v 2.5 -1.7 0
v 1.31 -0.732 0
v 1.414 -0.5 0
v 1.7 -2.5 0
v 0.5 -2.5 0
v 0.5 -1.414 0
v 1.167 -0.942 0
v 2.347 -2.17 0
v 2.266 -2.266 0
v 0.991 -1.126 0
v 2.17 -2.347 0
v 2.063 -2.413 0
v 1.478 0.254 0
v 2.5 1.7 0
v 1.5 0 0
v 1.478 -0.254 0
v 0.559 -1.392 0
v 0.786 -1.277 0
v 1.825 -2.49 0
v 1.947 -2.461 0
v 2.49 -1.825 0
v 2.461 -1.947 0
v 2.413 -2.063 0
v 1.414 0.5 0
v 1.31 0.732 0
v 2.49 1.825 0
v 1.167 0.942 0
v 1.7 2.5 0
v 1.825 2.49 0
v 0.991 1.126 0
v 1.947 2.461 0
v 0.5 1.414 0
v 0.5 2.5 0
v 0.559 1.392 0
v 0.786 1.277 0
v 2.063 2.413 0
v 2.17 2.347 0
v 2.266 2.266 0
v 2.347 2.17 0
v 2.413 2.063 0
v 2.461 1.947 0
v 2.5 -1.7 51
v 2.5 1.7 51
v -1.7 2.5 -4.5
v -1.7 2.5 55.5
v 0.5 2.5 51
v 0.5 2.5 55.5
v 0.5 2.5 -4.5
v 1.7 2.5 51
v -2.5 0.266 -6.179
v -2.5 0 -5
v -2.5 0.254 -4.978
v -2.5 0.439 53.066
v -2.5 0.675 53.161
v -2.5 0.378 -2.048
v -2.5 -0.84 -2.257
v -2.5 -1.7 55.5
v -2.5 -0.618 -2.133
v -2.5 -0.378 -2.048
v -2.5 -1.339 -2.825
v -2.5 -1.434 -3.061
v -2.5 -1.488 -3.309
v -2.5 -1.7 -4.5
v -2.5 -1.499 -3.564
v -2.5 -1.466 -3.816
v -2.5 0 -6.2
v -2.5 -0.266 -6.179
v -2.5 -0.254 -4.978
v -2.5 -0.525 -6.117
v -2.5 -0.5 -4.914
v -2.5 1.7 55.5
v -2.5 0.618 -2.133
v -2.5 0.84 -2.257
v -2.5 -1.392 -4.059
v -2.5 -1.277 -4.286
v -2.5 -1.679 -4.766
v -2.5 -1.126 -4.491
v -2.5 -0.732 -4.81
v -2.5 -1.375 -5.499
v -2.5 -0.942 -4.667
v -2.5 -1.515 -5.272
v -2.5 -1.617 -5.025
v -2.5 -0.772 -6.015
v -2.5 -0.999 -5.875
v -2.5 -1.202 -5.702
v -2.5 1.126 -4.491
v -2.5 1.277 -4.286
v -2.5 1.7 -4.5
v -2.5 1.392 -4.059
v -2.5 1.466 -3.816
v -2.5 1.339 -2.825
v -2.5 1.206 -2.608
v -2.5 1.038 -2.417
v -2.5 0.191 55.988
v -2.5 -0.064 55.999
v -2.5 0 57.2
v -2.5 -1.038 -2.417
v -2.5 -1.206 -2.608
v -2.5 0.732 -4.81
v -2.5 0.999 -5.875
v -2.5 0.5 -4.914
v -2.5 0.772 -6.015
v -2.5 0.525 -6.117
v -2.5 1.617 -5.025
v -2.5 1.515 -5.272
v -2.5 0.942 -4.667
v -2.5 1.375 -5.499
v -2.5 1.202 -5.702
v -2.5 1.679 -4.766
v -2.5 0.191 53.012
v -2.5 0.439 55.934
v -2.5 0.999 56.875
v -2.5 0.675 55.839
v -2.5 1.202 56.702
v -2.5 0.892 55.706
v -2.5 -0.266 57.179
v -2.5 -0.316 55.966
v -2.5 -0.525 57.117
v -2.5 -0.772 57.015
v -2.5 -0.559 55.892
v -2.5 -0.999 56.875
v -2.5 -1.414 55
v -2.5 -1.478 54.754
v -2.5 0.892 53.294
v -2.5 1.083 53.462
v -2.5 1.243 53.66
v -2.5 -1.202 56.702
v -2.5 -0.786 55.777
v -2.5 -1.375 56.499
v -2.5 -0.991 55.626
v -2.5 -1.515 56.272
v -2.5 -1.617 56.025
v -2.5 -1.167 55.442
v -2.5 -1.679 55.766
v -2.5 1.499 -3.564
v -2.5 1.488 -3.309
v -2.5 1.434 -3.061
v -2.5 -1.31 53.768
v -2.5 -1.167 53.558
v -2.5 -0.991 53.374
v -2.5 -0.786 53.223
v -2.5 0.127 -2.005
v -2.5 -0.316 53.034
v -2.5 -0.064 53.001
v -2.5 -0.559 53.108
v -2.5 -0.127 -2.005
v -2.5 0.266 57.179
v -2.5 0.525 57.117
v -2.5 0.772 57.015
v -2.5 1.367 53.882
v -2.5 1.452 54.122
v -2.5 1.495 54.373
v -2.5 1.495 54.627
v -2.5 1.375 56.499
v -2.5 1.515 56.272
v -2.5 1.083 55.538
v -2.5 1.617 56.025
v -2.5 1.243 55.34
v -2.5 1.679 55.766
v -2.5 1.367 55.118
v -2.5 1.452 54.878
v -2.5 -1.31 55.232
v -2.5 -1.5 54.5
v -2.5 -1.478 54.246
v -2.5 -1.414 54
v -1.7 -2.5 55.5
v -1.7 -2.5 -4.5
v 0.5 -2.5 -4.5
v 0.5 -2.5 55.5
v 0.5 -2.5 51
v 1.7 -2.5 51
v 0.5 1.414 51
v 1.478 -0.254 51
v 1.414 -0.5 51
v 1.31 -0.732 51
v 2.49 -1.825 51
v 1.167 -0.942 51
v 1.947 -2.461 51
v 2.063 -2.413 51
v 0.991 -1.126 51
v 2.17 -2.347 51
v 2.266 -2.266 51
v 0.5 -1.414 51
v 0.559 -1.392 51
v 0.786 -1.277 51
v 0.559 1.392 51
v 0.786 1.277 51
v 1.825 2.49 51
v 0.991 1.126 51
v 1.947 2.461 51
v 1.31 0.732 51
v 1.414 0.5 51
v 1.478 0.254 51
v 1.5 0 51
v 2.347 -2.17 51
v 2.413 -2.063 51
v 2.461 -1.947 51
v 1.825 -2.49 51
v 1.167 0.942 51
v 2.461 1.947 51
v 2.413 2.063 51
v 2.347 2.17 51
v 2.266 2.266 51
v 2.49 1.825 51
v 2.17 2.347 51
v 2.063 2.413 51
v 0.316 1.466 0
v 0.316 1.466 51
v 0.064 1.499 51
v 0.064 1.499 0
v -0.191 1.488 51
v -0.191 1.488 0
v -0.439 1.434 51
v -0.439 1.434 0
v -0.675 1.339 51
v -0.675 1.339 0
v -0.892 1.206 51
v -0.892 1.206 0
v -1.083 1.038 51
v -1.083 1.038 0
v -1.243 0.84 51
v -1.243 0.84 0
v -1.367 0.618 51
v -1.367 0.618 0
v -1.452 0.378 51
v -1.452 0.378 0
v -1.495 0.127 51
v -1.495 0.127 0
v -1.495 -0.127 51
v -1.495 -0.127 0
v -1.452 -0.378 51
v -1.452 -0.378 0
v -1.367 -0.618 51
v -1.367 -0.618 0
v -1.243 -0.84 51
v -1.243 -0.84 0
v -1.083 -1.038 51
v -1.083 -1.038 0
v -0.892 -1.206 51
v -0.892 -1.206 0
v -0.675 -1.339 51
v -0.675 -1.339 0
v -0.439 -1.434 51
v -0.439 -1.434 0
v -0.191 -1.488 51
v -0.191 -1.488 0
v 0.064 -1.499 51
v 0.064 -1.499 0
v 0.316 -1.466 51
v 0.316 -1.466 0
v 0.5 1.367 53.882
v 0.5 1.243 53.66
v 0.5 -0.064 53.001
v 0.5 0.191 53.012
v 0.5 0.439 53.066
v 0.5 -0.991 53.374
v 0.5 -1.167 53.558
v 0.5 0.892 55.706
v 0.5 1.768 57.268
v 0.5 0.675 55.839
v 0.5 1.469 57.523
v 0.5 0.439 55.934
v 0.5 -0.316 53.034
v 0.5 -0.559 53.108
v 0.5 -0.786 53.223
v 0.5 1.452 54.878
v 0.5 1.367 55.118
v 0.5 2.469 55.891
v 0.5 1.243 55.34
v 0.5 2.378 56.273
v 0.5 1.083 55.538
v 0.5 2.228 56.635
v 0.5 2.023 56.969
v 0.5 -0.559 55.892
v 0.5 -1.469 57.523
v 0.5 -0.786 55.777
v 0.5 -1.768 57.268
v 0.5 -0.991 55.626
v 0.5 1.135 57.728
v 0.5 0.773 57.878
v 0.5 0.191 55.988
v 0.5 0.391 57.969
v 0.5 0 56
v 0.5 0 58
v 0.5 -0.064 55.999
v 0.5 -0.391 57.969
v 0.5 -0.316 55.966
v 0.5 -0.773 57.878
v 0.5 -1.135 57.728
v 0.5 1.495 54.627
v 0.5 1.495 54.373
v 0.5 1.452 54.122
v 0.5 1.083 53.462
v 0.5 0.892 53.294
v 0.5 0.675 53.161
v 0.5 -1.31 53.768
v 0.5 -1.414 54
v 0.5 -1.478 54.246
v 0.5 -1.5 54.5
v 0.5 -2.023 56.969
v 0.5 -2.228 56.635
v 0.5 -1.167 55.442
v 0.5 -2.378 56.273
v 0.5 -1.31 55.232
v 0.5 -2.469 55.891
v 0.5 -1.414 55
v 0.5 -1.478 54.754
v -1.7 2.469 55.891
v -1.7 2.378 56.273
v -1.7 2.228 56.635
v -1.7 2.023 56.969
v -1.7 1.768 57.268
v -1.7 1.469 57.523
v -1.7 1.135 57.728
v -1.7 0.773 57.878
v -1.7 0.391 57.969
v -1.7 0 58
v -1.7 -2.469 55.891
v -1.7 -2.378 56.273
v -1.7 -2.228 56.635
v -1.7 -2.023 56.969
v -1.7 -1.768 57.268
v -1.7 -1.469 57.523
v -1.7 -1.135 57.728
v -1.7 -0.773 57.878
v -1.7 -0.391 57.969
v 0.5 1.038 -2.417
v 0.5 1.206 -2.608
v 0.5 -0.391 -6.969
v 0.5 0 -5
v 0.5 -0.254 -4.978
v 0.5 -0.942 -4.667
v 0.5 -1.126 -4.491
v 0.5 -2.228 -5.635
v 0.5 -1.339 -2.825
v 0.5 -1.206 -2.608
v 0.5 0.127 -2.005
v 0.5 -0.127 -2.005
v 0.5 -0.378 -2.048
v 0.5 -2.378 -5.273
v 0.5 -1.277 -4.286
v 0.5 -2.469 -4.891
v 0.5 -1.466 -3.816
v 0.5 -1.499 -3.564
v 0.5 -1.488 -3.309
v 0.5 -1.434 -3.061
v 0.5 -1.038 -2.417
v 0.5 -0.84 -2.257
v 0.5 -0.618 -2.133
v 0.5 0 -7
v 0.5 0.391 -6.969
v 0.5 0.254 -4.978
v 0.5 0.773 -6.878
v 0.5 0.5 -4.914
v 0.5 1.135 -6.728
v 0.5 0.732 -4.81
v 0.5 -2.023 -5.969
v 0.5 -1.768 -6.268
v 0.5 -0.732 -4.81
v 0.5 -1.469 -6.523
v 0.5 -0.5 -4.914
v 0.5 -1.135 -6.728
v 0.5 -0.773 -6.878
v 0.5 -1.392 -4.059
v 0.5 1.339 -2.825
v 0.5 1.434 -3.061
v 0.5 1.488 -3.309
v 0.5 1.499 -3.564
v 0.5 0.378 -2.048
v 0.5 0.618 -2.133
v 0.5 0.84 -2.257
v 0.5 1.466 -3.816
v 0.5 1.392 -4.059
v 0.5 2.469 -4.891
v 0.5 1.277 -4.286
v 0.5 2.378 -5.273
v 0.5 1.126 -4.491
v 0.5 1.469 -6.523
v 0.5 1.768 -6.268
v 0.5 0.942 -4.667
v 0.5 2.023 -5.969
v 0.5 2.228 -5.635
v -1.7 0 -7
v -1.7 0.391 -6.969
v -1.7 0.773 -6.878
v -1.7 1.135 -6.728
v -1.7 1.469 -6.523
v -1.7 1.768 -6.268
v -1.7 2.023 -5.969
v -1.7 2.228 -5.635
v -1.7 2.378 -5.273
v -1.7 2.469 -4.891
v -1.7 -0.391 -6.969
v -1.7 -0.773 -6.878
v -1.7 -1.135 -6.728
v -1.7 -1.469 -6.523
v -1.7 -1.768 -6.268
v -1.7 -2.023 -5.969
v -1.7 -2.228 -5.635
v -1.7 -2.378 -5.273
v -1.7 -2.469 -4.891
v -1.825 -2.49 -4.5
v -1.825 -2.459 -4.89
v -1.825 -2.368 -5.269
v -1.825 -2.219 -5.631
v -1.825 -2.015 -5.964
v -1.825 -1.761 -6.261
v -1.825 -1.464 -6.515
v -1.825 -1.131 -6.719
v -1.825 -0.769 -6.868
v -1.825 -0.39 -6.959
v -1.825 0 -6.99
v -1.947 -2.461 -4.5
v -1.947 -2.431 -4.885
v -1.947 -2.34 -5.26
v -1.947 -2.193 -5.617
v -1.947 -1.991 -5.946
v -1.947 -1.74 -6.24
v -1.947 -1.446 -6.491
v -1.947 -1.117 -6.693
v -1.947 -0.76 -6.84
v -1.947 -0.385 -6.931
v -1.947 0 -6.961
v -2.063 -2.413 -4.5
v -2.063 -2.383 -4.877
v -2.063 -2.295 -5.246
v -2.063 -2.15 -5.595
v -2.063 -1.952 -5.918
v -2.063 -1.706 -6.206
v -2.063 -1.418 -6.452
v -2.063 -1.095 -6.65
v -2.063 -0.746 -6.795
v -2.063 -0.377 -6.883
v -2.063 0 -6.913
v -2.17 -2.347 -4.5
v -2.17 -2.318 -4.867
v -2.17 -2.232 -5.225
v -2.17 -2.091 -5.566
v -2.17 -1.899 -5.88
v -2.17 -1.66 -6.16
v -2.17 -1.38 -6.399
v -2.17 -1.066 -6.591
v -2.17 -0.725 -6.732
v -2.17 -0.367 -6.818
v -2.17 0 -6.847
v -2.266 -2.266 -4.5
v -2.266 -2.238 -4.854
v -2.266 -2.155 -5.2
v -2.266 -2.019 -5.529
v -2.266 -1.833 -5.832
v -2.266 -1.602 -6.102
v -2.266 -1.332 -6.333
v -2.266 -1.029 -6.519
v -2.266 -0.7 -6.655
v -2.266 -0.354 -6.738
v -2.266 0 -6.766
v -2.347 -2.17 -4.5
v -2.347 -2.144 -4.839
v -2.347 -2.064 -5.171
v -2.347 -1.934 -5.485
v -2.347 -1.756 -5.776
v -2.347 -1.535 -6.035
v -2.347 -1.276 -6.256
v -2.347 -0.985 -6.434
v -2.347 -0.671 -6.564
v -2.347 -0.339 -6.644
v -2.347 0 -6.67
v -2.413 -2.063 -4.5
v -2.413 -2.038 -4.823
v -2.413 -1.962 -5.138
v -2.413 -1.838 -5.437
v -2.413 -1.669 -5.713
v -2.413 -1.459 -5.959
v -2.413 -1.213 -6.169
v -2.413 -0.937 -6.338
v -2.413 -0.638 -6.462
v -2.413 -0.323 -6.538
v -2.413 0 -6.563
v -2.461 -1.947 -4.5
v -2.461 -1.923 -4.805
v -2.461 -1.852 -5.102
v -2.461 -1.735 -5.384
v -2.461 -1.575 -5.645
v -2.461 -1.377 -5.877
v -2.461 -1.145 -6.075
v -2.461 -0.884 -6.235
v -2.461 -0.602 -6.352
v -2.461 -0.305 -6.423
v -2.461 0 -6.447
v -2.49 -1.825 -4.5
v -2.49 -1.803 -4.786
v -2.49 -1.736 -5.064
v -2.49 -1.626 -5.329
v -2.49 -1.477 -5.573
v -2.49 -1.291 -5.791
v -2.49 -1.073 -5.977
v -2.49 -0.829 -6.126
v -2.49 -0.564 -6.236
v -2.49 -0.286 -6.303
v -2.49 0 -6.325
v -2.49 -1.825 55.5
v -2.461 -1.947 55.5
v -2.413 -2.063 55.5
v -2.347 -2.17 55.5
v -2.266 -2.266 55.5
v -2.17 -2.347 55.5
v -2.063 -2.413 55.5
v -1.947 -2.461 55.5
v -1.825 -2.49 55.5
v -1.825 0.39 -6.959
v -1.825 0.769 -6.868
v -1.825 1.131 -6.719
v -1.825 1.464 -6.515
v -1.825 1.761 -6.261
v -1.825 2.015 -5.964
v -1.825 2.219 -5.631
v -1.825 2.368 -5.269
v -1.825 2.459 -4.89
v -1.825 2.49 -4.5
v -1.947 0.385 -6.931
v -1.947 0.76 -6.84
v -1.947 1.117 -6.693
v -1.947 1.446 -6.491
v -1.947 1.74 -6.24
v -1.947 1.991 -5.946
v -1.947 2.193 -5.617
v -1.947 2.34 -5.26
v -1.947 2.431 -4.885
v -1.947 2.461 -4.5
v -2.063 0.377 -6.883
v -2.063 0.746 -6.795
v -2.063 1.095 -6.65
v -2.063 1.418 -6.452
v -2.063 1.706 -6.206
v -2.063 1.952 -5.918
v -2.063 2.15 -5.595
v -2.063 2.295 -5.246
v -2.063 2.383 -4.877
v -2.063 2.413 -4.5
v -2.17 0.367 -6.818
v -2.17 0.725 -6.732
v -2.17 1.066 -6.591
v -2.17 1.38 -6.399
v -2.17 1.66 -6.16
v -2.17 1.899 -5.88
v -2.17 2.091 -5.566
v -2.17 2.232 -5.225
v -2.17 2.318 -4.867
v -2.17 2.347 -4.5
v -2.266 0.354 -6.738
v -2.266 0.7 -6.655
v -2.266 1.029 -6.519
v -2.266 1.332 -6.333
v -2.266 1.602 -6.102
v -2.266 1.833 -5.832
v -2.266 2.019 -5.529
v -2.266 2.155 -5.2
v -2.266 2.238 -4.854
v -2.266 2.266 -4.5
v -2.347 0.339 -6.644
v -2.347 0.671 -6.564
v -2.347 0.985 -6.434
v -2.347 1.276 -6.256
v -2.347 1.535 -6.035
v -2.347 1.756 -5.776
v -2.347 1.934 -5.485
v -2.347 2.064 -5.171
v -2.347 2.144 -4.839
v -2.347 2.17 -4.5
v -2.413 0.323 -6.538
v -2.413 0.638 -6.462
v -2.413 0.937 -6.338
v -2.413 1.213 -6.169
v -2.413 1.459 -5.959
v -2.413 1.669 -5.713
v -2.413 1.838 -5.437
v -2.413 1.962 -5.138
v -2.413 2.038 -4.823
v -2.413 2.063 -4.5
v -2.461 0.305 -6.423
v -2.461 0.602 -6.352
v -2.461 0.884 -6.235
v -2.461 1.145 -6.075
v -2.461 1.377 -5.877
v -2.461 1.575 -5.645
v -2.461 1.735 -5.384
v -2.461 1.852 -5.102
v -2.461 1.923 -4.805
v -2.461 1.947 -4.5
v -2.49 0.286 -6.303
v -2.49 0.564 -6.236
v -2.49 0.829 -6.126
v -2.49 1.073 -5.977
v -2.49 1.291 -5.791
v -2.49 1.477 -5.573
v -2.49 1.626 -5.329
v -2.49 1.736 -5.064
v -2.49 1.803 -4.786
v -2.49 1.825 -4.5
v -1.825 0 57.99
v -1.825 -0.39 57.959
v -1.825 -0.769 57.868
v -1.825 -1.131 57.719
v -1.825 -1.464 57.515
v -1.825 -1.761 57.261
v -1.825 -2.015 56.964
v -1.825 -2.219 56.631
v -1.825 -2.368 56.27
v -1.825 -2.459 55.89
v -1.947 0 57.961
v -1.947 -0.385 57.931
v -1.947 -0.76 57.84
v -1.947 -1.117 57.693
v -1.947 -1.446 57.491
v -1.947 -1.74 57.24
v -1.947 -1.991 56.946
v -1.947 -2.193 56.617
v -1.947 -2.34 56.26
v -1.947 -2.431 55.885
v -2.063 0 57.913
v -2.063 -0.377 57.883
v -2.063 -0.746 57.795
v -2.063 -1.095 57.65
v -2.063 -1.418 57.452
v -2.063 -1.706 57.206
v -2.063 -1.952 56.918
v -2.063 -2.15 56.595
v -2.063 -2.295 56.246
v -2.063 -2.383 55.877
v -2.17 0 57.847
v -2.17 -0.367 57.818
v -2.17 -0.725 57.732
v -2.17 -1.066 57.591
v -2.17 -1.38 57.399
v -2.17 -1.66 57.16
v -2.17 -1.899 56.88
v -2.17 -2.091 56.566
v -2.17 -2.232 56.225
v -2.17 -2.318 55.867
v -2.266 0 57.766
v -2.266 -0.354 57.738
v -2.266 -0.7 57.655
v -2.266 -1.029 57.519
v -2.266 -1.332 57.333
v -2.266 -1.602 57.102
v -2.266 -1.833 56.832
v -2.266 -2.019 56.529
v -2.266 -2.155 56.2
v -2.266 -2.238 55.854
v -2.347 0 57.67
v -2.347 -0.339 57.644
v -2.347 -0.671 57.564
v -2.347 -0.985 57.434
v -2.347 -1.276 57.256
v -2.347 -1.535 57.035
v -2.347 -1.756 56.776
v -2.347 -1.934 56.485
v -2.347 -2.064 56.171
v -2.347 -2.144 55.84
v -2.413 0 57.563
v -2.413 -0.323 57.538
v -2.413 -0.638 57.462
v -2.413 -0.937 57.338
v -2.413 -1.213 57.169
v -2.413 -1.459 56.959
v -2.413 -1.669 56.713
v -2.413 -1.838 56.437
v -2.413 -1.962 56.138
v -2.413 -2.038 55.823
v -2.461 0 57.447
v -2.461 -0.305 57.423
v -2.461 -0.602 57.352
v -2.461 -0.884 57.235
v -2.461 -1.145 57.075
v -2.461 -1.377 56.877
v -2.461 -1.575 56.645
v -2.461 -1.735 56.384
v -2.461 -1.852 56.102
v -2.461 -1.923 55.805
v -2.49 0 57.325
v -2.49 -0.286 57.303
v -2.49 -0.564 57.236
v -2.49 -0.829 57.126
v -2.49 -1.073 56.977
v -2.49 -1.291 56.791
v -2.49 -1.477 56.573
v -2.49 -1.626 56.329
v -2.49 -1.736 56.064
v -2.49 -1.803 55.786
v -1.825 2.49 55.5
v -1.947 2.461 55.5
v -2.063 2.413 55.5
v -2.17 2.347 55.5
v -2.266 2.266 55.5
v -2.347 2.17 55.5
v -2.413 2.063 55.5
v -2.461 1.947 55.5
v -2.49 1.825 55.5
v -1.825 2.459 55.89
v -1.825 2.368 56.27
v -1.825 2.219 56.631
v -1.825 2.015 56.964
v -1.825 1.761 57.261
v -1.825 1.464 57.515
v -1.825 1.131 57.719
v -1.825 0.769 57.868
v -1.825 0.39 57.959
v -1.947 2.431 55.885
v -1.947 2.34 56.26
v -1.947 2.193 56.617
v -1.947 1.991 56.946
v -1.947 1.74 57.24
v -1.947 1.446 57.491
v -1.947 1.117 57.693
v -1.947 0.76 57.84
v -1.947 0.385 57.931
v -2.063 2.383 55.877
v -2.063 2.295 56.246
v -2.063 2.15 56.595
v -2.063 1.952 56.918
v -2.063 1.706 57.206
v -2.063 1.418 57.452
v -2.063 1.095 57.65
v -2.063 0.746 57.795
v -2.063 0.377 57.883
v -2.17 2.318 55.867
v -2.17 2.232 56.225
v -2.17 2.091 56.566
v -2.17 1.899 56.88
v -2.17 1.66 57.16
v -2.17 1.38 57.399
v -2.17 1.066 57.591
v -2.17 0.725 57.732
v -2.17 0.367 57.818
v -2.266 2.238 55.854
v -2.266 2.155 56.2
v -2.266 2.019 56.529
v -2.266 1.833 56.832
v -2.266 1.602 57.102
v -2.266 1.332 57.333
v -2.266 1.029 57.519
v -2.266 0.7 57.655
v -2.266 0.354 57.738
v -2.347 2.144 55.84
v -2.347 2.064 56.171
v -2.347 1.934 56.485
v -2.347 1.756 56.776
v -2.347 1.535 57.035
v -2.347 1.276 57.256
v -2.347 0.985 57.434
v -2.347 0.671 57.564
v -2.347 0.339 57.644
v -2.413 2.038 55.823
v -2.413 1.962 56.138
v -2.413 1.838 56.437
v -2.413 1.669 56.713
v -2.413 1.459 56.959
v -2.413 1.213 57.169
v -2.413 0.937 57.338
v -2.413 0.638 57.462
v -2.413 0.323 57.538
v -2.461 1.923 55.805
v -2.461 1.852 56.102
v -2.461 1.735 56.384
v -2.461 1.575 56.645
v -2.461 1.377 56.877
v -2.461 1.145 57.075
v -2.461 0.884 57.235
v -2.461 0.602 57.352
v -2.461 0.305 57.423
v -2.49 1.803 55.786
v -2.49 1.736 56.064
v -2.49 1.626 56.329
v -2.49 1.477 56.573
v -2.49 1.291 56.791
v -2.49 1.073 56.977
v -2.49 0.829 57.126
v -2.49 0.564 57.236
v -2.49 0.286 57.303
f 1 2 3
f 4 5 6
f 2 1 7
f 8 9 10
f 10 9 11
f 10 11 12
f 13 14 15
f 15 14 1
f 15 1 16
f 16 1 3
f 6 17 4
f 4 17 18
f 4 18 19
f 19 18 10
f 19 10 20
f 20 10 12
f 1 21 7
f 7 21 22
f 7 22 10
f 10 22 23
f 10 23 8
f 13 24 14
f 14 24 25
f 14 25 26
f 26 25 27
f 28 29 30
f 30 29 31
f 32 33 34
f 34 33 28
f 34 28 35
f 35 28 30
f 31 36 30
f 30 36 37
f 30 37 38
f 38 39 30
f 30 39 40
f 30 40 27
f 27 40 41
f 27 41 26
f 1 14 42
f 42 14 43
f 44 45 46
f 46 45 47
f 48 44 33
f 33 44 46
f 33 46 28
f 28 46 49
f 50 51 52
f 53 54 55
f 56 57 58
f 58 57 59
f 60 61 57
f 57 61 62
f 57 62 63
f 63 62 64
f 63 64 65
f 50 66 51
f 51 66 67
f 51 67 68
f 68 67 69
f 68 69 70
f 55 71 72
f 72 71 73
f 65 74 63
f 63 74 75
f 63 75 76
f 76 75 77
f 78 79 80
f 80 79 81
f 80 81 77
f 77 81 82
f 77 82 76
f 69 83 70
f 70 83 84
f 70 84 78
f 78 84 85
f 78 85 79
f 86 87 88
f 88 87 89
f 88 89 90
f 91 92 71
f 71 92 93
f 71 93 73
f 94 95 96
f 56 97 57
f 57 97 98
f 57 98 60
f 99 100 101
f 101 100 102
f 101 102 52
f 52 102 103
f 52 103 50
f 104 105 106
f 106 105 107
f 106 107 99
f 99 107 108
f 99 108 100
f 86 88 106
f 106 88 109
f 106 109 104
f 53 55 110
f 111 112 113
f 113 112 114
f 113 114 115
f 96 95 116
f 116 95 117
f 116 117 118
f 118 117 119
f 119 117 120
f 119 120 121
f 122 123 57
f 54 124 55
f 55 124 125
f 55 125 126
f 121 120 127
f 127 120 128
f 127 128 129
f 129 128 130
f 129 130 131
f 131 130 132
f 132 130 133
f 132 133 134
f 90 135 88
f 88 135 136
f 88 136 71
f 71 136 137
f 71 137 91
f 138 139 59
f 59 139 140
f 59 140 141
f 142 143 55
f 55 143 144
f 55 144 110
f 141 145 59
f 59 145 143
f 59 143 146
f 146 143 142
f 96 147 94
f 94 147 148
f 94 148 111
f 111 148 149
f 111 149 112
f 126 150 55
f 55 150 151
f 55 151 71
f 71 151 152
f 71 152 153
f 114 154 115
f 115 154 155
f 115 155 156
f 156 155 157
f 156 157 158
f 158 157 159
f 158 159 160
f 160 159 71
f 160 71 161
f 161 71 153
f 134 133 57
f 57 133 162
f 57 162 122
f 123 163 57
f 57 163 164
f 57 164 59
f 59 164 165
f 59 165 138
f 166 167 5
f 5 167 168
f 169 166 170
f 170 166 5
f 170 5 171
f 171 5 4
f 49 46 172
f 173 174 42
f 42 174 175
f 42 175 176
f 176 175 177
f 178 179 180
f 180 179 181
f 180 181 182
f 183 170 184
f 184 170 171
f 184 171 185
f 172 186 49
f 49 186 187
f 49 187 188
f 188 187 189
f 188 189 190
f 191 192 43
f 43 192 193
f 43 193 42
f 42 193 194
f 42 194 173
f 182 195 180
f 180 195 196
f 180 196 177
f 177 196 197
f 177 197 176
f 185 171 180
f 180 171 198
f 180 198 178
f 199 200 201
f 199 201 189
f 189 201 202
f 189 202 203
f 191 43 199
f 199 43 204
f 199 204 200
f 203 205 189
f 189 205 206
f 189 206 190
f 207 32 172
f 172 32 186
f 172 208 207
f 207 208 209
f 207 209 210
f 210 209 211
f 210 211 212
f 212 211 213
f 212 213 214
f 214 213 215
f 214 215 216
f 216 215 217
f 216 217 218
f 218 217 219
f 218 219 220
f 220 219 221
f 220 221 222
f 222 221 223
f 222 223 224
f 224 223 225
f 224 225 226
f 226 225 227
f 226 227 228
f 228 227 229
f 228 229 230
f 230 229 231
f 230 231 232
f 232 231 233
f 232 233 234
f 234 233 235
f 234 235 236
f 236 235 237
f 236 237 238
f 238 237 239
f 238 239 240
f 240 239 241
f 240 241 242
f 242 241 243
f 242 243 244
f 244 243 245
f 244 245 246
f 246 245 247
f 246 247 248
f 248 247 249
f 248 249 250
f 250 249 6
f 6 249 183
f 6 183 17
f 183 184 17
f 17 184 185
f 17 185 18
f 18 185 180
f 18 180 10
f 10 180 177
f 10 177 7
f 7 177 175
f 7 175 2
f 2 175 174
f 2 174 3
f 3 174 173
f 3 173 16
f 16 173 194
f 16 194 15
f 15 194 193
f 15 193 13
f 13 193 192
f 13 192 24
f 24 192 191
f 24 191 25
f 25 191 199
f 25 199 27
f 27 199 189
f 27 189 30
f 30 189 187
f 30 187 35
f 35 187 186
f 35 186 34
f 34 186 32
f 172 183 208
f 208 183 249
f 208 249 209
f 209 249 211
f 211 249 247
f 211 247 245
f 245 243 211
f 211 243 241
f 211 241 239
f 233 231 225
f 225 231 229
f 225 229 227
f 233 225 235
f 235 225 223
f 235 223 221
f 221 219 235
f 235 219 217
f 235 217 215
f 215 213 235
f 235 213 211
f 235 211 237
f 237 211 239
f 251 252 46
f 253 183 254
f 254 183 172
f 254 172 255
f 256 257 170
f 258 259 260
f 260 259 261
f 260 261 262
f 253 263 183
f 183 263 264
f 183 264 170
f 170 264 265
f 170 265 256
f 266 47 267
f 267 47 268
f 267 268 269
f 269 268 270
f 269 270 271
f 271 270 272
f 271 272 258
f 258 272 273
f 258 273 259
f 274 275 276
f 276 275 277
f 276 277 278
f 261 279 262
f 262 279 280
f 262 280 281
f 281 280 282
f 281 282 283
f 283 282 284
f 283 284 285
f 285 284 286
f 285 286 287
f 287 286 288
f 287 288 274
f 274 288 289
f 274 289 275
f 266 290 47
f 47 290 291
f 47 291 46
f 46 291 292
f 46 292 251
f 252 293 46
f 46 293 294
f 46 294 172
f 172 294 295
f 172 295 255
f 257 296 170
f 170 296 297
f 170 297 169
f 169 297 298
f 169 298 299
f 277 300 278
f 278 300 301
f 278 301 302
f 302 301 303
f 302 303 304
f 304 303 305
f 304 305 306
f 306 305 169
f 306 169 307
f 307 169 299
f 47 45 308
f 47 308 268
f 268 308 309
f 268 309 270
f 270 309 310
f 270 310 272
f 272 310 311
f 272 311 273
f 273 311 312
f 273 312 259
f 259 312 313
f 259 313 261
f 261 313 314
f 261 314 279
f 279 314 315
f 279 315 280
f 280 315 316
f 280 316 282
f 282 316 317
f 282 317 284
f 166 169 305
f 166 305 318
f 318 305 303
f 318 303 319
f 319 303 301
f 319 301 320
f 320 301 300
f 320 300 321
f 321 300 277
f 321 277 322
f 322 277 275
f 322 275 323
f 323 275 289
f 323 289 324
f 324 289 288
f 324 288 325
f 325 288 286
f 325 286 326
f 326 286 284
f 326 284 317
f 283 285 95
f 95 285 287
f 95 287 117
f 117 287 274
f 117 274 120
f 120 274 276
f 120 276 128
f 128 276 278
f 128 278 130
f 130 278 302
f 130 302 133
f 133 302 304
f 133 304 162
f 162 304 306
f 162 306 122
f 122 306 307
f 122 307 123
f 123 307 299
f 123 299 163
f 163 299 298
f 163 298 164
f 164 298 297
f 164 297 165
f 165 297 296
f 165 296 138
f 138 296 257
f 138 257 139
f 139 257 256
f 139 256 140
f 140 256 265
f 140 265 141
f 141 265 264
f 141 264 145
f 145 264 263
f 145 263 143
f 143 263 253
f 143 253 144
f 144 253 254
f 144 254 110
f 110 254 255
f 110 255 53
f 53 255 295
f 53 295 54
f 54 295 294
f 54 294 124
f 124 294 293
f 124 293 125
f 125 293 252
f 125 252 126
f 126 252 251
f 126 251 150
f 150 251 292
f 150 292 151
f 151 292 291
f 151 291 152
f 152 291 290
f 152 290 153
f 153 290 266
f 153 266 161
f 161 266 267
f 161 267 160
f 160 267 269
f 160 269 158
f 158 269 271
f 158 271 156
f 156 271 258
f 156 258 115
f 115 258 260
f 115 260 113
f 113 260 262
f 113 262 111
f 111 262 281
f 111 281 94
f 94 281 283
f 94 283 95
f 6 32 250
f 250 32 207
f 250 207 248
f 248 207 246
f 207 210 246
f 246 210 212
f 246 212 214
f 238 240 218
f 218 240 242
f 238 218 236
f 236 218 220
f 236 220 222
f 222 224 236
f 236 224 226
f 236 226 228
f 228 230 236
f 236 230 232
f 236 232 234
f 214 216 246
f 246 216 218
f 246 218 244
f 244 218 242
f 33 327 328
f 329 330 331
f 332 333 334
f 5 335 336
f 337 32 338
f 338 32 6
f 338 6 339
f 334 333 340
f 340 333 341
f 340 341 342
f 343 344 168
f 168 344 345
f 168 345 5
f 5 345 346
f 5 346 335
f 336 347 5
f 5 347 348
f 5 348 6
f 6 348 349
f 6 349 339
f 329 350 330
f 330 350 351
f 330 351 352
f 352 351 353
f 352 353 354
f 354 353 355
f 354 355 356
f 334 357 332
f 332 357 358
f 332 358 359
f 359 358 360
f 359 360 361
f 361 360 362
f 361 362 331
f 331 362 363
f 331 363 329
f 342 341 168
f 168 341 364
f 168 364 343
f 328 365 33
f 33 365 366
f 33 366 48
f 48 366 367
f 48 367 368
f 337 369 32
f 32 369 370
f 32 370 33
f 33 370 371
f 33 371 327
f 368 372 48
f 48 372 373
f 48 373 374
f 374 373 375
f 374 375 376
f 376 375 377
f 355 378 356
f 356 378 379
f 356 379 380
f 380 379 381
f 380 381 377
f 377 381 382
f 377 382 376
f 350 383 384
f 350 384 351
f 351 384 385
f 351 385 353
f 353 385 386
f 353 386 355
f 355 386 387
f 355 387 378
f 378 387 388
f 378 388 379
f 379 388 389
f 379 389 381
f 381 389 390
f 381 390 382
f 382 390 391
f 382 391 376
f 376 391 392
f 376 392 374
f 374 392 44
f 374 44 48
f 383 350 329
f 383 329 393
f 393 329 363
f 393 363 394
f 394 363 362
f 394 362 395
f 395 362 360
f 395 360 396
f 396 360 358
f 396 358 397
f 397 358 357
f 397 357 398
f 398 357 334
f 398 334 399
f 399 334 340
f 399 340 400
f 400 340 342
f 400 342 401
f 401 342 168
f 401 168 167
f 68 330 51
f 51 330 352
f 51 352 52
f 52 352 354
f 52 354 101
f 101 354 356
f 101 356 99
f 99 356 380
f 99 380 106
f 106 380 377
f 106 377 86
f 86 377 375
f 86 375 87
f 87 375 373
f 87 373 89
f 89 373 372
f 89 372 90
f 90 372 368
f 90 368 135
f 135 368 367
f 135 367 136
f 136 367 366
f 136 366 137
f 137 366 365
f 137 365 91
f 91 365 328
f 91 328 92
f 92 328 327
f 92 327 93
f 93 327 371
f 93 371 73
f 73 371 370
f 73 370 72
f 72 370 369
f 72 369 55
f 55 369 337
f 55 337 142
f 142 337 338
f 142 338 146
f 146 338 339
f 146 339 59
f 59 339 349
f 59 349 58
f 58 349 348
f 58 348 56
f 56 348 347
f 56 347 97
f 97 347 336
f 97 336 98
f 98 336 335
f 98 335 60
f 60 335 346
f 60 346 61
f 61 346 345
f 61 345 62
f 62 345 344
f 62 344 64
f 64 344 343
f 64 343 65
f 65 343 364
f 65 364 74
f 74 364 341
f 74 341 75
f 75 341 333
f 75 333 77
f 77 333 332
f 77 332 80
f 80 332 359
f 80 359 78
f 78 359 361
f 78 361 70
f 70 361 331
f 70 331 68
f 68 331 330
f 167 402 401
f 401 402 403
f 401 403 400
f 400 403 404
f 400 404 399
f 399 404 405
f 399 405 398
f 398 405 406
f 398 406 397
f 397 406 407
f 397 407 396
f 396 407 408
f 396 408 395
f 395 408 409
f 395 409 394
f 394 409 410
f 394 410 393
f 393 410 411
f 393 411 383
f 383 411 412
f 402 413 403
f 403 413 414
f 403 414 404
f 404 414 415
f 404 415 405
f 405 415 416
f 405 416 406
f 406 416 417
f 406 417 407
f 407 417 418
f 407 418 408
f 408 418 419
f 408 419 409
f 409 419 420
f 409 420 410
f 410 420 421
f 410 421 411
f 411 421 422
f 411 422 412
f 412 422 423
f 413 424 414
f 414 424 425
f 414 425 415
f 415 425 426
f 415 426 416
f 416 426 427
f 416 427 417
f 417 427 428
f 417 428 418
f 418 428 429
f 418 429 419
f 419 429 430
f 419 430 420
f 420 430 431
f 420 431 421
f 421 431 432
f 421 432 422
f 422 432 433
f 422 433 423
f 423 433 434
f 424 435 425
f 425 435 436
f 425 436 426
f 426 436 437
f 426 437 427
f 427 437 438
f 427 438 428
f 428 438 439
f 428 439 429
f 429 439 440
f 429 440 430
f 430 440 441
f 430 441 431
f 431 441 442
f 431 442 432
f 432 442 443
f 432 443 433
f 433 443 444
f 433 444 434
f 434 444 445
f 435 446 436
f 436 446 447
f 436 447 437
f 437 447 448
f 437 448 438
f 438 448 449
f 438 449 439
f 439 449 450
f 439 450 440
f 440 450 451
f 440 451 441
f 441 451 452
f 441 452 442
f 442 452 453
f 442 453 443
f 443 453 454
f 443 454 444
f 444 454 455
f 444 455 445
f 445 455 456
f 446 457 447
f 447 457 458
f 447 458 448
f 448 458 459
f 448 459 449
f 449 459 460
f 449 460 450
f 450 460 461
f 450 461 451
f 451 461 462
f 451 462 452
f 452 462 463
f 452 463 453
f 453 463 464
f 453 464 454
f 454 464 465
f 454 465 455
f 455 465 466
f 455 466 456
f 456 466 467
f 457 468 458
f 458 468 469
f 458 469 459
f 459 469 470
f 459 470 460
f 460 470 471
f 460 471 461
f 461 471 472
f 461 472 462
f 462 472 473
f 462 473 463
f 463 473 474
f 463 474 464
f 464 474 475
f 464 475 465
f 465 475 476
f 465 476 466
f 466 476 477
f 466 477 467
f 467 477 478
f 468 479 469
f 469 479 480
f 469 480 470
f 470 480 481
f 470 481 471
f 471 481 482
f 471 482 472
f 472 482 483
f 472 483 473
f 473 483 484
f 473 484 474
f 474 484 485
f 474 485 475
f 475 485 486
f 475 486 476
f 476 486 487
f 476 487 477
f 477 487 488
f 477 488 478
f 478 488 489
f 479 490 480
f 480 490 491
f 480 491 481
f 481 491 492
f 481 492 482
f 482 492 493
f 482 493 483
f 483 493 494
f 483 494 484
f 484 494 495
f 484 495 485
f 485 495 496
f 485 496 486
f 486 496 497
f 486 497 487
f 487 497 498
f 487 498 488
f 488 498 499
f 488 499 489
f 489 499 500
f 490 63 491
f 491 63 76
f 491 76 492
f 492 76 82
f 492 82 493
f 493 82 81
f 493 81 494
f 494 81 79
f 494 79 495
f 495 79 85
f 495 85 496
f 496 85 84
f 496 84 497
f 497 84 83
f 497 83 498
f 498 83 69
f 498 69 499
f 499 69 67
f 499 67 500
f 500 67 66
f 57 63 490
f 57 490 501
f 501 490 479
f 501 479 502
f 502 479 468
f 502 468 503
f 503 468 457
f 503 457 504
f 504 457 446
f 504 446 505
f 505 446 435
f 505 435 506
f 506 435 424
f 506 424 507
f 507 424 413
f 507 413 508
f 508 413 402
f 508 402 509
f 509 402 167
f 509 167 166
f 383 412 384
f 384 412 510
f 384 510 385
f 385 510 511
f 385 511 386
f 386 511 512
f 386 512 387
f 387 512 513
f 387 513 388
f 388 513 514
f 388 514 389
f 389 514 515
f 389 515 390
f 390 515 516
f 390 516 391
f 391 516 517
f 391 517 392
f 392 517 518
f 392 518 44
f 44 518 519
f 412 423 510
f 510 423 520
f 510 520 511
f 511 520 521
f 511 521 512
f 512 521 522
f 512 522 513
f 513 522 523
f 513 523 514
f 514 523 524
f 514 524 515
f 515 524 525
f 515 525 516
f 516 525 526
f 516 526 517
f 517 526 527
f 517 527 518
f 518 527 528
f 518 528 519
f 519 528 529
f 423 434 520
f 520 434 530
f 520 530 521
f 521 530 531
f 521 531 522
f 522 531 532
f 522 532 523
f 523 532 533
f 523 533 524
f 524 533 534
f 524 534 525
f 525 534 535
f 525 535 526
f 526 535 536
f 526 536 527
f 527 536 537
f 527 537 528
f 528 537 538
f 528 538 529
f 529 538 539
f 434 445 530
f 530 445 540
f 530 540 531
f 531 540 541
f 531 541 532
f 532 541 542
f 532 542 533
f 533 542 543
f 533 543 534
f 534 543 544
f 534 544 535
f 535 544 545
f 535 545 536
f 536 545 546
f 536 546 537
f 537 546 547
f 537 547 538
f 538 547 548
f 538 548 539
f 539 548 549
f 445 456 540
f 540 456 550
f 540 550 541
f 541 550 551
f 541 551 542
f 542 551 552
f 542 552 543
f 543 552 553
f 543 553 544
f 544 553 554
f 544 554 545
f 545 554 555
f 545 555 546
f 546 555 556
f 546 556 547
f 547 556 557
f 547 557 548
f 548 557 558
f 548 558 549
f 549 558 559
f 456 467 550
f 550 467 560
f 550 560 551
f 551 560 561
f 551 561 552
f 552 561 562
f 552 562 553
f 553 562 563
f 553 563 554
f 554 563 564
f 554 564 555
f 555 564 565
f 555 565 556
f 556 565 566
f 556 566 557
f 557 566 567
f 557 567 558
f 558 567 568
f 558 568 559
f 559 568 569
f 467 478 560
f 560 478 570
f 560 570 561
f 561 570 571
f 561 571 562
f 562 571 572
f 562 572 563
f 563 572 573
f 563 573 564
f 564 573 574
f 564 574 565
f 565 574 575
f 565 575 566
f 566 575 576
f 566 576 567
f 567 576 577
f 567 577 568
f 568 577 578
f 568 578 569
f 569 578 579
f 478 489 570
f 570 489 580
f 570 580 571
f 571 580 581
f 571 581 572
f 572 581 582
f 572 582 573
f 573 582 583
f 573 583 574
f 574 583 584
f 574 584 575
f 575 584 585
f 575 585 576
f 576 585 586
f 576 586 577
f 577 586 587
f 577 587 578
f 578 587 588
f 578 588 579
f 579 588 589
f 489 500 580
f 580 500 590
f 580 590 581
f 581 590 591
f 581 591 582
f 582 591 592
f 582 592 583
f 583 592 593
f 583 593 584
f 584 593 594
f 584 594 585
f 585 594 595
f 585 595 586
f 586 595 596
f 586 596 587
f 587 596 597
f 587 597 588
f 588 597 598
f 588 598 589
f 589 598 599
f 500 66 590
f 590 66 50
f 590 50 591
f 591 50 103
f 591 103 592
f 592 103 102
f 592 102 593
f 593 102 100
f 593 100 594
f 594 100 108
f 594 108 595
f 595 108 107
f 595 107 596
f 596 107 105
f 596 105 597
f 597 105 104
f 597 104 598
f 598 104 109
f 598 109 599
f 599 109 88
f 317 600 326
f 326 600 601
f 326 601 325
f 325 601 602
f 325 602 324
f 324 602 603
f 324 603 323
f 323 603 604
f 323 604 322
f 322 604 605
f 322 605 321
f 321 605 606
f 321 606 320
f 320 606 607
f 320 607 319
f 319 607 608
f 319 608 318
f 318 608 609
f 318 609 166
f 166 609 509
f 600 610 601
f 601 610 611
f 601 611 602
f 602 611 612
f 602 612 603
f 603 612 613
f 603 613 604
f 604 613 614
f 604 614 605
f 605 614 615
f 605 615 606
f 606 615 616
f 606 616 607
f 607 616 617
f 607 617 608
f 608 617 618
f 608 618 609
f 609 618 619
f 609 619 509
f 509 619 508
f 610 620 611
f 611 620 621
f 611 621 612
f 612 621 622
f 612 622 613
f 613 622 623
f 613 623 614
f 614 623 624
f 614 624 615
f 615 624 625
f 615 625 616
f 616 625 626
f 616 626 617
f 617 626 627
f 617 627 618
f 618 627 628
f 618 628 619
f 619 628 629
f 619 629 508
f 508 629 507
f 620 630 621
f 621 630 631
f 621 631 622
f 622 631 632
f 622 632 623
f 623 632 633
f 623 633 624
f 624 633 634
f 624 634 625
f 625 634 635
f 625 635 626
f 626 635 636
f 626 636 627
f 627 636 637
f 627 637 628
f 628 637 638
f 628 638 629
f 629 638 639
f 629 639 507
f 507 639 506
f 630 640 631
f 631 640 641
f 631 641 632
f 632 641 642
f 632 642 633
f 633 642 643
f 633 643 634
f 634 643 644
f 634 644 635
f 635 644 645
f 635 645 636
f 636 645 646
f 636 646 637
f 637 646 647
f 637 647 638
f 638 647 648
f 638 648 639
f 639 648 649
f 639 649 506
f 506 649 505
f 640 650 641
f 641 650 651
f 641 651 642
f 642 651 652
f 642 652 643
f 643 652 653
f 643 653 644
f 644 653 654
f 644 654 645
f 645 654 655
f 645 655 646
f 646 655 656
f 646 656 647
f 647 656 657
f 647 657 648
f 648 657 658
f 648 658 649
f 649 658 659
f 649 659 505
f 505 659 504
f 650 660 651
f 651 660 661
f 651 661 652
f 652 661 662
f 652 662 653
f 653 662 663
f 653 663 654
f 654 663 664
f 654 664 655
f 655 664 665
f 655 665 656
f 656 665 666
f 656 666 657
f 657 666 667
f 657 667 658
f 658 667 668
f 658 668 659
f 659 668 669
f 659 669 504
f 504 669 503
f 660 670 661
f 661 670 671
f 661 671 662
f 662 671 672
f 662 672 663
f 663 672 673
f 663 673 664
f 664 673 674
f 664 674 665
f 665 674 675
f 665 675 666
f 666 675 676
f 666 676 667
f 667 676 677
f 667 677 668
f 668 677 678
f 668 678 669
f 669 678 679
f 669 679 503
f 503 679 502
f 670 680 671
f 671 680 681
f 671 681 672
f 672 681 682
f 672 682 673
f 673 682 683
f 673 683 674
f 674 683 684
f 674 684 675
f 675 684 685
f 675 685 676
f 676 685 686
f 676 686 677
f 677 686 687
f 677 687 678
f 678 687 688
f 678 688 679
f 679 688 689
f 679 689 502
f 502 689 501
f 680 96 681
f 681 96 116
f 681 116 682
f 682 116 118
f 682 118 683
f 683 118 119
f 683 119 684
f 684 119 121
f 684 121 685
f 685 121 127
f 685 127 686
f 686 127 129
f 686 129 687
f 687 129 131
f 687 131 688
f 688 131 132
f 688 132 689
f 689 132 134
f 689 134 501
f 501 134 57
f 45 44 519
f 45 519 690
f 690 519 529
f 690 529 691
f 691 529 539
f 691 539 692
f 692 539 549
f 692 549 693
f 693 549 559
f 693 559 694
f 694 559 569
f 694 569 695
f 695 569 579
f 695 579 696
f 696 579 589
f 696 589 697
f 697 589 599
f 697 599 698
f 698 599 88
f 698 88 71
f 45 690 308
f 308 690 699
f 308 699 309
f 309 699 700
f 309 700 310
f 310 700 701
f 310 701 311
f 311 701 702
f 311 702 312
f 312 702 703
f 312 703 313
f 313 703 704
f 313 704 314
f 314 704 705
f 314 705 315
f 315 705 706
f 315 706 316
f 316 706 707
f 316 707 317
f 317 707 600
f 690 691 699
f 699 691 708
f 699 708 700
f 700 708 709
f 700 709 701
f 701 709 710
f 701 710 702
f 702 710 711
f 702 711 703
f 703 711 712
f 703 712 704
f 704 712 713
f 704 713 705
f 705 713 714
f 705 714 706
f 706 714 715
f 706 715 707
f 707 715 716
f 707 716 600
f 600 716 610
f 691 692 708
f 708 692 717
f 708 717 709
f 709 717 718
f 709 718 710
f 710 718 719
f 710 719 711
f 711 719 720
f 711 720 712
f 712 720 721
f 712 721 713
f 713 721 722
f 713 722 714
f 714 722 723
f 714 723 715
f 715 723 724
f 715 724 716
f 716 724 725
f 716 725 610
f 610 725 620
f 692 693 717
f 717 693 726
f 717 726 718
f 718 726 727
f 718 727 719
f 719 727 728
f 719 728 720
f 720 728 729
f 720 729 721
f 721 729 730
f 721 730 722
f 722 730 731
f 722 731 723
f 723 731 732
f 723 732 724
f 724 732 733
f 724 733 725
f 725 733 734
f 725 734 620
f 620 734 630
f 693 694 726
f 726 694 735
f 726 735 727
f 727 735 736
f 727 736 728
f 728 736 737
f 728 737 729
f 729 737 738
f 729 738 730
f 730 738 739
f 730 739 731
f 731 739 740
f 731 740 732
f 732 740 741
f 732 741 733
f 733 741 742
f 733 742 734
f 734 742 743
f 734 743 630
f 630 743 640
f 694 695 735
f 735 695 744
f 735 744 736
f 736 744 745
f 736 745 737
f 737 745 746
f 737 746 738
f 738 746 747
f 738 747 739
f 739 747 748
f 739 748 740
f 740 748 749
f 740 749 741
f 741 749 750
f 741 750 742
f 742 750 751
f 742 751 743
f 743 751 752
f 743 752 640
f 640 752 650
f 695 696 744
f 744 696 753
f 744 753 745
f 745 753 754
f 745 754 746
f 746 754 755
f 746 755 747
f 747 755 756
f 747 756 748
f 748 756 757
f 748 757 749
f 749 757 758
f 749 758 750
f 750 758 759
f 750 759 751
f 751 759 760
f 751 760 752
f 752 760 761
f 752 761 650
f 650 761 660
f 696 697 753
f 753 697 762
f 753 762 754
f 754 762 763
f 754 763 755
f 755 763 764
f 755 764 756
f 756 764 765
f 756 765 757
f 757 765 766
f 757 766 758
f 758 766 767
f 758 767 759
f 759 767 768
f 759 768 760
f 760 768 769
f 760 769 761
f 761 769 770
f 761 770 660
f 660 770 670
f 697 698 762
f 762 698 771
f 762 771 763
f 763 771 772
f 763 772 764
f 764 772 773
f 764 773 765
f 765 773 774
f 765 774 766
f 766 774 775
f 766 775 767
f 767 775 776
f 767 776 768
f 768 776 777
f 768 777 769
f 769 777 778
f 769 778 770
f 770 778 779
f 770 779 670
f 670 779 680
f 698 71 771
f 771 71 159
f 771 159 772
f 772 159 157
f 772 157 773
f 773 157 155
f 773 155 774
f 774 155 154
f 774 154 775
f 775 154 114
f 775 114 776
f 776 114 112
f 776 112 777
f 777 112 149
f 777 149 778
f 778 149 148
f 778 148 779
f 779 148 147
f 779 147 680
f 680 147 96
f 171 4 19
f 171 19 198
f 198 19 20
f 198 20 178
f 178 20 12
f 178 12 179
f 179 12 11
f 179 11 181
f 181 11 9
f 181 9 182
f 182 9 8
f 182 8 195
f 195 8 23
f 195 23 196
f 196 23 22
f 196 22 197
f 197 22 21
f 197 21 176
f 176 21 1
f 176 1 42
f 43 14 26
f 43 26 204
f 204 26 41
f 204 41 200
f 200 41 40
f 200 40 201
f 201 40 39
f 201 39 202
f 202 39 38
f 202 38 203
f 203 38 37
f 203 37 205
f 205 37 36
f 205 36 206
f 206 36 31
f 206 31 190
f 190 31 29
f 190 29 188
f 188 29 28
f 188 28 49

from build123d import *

# Parameters (mm, degrees)
SKETCH_1_W          = 5
SKETCH_1_H          = 5
EXTRUDE_1_DEPTH     = 51
SKETCH_2_R          = 1.5
CUT_EXTRUDE_1_DEPTH = 52.122402134
SKETCH_3_W          = 3
SKETCH_3_H          = 5
EXTRUDE_2_DEPTH     = 7
FILLET_1_R          = 2.5
SKETCH_4_R          = 1.5
CUT_EXTRUDE_2_DEPTH = 59.268773799
SKETCH_5_W          = 3
SKETCH_5_H          = 5
EXTRUDE_3_DEPTH     = 7
FILLET_2_R          = 2.5
SKETCH_6_R          = 1.5
CUT_EXTRUDE_3_DEPTH = 59.131316861
FILLET_3_R          = 0.8


with BuildPart() as part:
    # 草图1 → 凸台-拉伸1 (new body)
    with BuildSketch(Plane.XY):
        Rectangle(SKETCH_1_W, SKETCH_1_H)
    extrude(amount=EXTRUDE_1_DEPTH)

    # 草图2 → 切除-拉伸1 (cut, through all)
    with BuildSketch(Plane.XY.offset(51)):
        Circle(SKETCH_2_R)
    extrude(amount=-CUT_EXTRUDE_1_DEPTH, mode=Mode.SUBTRACT)

    # 草图3 → 凸台-拉伸2 (add)
    with BuildSketch(Plane.XY.offset(51)):
        with Locations((-1, 0)):
            Rectangle(SKETCH_3_W, SKETCH_3_H)
    extrude(amount=EXTRUDE_2_DEPTH)

    # 圆角1
    fillet_1_edges = [part.edges().sort_by_distance(p)[0] for p in [
        (-1, -2.5, 58),
        (-1, 2.5, 58),
    ]]
    fillet(fillet_1_edges, radius=FILLET_1_R - 0.0001)  # a hair under: the kernel refuses the full size

    # 草图4 → 切除-拉伸2 (cut, through all)
    with BuildSketch(Plane.ZY.offset(2.5)):
        with Locations(Location((54.5, 0, 0), (0, 0, 270))):
            Circle(SKETCH_4_R)
    extrude(amount=-CUT_EXTRUDE_2_DEPTH, mode=Mode.SUBTRACT)

    # 草图5 → 凸台-拉伸3 (add)
    with BuildSketch(Plane(origin=(0, 0, 0), x_dir=(-1, 0, 0), z_dir=(0, 0, -1))):
        with Locations((1, 0)):
            Rectangle(SKETCH_5_W, SKETCH_5_H)
    extrude(amount=EXTRUDE_3_DEPTH)

    # 圆角2
    fillet_2_edges = [part.edges().sort_by_distance(p)[0] for p in [
        (-1, -2.5, -7),
        (-1, 2.5, -7),
    ]]
    fillet(fillet_2_edges, radius=FILLET_2_R - 0.0001)  # a hair under: the kernel refuses the full size

    # 草图6 → 切除-拉伸3 (cut, through all)
    with BuildSketch(Plane(origin=(0.5, 0, 0), x_dir=(0, 0, -1), z_dir=(1, 0, 0))):
        with Locations((3.5, 0)):
            Circle(SKETCH_6_R)
    extrude(amount=-CUT_EXTRUDE_3_DEPTH, mode=Mode.SUBTRACT)

    # 圆角3
    fillet_3_edges = [part.edges().sort_by_distance(p)[0] for p in [
        (-2.5, 1.767796242, 57.267796242),
        (-2.5, -1.767796242, 57.267796242),
        (-2.5, -2.5, 25.5),
        (-2.5, -1.767796242, -6.267796242),
        (-2.5, 1.767796242, -6.267796242),
        (-2.5, 2.5, 25.5),
        (2.5, -2.5, 25.5),
        (2.5, 2.5, 25.5),
    ]]
    fillet(fillet_3_edges, radius=FILLET_3_R)


solid = part.part
